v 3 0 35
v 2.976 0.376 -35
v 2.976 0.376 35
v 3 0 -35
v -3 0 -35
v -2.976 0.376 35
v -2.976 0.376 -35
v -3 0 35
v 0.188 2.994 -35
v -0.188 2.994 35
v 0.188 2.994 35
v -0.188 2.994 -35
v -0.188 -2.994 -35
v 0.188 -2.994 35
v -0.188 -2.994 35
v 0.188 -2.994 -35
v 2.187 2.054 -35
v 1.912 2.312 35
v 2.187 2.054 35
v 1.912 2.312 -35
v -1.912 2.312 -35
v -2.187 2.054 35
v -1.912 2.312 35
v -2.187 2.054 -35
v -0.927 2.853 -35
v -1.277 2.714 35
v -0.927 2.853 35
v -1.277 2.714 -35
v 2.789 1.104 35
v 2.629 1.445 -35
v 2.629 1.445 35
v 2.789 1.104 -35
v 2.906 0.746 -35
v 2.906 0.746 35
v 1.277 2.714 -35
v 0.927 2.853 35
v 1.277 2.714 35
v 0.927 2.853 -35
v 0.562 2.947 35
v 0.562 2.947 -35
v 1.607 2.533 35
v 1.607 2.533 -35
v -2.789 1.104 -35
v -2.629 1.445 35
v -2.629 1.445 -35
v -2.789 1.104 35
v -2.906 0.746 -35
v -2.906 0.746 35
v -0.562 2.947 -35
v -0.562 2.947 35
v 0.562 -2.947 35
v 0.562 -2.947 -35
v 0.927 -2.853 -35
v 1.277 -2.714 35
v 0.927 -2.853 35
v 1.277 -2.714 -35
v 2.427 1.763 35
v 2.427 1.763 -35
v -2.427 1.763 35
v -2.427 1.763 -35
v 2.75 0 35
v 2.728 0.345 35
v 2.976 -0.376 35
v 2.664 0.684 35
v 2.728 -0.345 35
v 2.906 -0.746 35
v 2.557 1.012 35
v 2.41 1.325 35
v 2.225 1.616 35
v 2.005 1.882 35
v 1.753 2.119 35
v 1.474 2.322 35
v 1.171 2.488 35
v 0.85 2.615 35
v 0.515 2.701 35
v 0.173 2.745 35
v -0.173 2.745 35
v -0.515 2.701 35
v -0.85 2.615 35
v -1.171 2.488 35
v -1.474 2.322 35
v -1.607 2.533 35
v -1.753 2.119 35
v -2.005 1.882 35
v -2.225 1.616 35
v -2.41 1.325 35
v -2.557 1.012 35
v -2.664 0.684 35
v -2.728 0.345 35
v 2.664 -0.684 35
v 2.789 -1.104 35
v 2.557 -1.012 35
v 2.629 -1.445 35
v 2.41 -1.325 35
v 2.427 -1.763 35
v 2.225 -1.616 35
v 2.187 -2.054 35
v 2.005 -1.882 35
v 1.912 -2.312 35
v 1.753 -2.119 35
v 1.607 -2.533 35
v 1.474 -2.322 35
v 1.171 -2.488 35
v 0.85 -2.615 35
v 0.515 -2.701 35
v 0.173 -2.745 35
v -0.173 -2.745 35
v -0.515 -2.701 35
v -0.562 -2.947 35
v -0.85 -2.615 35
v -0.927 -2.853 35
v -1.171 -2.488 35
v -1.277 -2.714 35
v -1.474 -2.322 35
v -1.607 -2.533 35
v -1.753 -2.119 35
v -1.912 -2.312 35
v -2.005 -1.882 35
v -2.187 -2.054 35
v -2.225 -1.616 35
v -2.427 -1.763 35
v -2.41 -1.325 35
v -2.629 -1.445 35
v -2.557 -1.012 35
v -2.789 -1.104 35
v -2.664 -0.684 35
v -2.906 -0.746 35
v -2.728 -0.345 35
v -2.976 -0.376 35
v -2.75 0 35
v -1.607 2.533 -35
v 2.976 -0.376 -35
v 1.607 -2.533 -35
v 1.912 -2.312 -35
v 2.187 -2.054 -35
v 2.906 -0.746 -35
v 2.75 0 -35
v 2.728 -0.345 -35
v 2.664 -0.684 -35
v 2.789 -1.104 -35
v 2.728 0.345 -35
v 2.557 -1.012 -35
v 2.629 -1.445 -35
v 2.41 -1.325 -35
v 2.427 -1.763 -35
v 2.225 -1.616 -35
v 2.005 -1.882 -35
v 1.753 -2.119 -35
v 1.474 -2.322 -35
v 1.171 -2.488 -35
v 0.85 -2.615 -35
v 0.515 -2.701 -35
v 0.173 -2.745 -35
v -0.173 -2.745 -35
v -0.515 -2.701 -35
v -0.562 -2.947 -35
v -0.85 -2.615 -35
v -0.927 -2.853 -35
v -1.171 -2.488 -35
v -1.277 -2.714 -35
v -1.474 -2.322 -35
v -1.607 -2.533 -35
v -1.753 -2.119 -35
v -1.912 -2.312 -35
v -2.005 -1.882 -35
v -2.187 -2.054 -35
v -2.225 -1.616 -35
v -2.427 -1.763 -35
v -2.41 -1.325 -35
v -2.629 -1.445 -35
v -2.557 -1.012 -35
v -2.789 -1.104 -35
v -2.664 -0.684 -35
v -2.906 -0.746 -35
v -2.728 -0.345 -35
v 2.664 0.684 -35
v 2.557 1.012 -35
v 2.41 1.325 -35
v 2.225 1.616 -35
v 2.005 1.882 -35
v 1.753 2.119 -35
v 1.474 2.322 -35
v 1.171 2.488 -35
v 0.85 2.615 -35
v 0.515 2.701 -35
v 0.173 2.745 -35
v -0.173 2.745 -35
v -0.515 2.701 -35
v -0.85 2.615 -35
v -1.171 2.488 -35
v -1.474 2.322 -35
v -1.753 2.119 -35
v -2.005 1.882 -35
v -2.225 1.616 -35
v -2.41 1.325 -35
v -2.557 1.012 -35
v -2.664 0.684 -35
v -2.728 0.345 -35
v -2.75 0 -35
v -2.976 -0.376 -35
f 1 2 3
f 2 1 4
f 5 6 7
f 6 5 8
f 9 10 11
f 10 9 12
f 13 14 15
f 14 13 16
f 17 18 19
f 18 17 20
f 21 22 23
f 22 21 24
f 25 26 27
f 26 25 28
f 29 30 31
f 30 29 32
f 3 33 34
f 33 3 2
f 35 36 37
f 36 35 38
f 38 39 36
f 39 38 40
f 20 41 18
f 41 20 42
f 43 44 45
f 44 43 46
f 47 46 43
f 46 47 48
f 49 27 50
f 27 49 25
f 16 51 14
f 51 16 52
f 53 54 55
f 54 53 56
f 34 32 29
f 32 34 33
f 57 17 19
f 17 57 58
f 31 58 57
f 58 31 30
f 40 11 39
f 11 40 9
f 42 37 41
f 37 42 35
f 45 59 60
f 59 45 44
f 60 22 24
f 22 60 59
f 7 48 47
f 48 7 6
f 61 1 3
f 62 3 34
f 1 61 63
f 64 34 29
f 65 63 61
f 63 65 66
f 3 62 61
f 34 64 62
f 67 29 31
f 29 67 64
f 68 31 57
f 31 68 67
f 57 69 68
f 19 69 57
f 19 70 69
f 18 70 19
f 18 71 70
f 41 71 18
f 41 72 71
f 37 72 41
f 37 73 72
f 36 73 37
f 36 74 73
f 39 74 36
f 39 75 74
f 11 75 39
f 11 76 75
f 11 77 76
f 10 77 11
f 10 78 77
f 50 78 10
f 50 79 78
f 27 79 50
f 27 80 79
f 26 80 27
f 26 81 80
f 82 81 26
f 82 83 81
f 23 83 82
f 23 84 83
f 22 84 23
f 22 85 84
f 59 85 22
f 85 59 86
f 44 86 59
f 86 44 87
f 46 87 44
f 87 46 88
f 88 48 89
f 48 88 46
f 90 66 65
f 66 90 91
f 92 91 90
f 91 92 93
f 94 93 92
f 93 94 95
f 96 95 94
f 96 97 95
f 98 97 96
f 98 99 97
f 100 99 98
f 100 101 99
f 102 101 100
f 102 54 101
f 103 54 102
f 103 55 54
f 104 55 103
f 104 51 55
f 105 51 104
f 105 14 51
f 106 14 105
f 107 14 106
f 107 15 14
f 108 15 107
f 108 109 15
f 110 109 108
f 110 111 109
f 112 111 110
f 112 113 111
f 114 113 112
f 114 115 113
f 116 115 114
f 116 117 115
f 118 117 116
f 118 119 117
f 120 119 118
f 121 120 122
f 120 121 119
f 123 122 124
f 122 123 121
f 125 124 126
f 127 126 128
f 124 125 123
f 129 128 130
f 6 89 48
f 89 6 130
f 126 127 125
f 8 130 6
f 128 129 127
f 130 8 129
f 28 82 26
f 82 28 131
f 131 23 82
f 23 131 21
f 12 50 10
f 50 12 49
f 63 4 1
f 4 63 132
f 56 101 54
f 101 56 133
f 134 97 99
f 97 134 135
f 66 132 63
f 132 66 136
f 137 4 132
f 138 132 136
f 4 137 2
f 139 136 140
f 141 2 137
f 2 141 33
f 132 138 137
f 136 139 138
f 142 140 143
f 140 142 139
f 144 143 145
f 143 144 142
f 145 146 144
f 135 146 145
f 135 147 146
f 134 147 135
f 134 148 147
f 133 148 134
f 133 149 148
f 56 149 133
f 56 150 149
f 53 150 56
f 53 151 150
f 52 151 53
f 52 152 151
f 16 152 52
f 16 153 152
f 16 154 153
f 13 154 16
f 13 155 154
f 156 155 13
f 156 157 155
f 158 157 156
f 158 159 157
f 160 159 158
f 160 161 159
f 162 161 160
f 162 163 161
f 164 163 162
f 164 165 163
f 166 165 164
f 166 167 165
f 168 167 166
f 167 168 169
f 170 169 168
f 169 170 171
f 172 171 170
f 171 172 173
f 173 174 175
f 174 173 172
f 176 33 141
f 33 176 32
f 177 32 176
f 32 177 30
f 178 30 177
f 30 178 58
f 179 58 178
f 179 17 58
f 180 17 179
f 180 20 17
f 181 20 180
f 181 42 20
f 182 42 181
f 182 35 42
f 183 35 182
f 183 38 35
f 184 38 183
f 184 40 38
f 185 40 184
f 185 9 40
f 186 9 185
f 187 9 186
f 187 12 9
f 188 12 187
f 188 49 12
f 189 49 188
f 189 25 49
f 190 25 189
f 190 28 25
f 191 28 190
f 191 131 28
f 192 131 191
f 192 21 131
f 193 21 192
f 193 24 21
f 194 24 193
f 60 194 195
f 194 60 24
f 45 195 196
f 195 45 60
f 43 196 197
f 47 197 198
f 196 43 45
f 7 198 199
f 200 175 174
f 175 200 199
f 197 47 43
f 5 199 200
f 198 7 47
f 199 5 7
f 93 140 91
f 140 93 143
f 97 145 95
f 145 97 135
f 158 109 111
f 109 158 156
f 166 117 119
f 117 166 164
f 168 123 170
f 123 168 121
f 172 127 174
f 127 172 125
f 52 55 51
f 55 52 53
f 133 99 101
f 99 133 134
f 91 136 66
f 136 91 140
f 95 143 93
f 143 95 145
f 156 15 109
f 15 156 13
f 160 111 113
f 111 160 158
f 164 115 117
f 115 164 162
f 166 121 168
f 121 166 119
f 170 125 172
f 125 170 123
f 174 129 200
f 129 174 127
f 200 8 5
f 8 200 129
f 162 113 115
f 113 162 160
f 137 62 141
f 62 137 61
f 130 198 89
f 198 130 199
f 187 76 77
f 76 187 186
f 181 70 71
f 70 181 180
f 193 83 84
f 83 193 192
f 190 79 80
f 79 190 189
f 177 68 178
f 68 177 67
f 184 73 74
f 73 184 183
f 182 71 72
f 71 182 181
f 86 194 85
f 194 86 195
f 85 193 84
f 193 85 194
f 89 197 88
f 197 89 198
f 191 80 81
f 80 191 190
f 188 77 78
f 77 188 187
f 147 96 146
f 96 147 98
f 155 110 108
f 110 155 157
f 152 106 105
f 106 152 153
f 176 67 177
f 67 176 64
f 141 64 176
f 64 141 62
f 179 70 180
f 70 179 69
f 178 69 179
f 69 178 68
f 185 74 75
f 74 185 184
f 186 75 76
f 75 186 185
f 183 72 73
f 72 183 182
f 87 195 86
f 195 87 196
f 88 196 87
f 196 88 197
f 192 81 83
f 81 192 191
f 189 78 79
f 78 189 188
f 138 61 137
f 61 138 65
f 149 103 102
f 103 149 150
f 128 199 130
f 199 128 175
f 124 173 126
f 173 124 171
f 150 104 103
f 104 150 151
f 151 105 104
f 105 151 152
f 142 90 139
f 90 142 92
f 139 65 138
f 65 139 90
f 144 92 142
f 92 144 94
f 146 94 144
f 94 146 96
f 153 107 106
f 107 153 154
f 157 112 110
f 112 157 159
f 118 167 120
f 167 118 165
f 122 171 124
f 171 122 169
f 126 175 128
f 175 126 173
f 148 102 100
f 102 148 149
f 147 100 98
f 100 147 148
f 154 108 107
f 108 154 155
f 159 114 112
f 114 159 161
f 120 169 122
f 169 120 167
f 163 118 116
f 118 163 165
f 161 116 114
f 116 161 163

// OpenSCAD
$fn = 50;


difference() {
	union() {
		translate(v = [0, 0, -35.0000000000]) {
			cylinder(h = 70, r = 3.0000000000);
		}
	}
	union() {
		translate(v = [0, 0, -100.0000000000]) {
			cylinder(h = 200, r = 2.7500000000);
		}
	}
}
